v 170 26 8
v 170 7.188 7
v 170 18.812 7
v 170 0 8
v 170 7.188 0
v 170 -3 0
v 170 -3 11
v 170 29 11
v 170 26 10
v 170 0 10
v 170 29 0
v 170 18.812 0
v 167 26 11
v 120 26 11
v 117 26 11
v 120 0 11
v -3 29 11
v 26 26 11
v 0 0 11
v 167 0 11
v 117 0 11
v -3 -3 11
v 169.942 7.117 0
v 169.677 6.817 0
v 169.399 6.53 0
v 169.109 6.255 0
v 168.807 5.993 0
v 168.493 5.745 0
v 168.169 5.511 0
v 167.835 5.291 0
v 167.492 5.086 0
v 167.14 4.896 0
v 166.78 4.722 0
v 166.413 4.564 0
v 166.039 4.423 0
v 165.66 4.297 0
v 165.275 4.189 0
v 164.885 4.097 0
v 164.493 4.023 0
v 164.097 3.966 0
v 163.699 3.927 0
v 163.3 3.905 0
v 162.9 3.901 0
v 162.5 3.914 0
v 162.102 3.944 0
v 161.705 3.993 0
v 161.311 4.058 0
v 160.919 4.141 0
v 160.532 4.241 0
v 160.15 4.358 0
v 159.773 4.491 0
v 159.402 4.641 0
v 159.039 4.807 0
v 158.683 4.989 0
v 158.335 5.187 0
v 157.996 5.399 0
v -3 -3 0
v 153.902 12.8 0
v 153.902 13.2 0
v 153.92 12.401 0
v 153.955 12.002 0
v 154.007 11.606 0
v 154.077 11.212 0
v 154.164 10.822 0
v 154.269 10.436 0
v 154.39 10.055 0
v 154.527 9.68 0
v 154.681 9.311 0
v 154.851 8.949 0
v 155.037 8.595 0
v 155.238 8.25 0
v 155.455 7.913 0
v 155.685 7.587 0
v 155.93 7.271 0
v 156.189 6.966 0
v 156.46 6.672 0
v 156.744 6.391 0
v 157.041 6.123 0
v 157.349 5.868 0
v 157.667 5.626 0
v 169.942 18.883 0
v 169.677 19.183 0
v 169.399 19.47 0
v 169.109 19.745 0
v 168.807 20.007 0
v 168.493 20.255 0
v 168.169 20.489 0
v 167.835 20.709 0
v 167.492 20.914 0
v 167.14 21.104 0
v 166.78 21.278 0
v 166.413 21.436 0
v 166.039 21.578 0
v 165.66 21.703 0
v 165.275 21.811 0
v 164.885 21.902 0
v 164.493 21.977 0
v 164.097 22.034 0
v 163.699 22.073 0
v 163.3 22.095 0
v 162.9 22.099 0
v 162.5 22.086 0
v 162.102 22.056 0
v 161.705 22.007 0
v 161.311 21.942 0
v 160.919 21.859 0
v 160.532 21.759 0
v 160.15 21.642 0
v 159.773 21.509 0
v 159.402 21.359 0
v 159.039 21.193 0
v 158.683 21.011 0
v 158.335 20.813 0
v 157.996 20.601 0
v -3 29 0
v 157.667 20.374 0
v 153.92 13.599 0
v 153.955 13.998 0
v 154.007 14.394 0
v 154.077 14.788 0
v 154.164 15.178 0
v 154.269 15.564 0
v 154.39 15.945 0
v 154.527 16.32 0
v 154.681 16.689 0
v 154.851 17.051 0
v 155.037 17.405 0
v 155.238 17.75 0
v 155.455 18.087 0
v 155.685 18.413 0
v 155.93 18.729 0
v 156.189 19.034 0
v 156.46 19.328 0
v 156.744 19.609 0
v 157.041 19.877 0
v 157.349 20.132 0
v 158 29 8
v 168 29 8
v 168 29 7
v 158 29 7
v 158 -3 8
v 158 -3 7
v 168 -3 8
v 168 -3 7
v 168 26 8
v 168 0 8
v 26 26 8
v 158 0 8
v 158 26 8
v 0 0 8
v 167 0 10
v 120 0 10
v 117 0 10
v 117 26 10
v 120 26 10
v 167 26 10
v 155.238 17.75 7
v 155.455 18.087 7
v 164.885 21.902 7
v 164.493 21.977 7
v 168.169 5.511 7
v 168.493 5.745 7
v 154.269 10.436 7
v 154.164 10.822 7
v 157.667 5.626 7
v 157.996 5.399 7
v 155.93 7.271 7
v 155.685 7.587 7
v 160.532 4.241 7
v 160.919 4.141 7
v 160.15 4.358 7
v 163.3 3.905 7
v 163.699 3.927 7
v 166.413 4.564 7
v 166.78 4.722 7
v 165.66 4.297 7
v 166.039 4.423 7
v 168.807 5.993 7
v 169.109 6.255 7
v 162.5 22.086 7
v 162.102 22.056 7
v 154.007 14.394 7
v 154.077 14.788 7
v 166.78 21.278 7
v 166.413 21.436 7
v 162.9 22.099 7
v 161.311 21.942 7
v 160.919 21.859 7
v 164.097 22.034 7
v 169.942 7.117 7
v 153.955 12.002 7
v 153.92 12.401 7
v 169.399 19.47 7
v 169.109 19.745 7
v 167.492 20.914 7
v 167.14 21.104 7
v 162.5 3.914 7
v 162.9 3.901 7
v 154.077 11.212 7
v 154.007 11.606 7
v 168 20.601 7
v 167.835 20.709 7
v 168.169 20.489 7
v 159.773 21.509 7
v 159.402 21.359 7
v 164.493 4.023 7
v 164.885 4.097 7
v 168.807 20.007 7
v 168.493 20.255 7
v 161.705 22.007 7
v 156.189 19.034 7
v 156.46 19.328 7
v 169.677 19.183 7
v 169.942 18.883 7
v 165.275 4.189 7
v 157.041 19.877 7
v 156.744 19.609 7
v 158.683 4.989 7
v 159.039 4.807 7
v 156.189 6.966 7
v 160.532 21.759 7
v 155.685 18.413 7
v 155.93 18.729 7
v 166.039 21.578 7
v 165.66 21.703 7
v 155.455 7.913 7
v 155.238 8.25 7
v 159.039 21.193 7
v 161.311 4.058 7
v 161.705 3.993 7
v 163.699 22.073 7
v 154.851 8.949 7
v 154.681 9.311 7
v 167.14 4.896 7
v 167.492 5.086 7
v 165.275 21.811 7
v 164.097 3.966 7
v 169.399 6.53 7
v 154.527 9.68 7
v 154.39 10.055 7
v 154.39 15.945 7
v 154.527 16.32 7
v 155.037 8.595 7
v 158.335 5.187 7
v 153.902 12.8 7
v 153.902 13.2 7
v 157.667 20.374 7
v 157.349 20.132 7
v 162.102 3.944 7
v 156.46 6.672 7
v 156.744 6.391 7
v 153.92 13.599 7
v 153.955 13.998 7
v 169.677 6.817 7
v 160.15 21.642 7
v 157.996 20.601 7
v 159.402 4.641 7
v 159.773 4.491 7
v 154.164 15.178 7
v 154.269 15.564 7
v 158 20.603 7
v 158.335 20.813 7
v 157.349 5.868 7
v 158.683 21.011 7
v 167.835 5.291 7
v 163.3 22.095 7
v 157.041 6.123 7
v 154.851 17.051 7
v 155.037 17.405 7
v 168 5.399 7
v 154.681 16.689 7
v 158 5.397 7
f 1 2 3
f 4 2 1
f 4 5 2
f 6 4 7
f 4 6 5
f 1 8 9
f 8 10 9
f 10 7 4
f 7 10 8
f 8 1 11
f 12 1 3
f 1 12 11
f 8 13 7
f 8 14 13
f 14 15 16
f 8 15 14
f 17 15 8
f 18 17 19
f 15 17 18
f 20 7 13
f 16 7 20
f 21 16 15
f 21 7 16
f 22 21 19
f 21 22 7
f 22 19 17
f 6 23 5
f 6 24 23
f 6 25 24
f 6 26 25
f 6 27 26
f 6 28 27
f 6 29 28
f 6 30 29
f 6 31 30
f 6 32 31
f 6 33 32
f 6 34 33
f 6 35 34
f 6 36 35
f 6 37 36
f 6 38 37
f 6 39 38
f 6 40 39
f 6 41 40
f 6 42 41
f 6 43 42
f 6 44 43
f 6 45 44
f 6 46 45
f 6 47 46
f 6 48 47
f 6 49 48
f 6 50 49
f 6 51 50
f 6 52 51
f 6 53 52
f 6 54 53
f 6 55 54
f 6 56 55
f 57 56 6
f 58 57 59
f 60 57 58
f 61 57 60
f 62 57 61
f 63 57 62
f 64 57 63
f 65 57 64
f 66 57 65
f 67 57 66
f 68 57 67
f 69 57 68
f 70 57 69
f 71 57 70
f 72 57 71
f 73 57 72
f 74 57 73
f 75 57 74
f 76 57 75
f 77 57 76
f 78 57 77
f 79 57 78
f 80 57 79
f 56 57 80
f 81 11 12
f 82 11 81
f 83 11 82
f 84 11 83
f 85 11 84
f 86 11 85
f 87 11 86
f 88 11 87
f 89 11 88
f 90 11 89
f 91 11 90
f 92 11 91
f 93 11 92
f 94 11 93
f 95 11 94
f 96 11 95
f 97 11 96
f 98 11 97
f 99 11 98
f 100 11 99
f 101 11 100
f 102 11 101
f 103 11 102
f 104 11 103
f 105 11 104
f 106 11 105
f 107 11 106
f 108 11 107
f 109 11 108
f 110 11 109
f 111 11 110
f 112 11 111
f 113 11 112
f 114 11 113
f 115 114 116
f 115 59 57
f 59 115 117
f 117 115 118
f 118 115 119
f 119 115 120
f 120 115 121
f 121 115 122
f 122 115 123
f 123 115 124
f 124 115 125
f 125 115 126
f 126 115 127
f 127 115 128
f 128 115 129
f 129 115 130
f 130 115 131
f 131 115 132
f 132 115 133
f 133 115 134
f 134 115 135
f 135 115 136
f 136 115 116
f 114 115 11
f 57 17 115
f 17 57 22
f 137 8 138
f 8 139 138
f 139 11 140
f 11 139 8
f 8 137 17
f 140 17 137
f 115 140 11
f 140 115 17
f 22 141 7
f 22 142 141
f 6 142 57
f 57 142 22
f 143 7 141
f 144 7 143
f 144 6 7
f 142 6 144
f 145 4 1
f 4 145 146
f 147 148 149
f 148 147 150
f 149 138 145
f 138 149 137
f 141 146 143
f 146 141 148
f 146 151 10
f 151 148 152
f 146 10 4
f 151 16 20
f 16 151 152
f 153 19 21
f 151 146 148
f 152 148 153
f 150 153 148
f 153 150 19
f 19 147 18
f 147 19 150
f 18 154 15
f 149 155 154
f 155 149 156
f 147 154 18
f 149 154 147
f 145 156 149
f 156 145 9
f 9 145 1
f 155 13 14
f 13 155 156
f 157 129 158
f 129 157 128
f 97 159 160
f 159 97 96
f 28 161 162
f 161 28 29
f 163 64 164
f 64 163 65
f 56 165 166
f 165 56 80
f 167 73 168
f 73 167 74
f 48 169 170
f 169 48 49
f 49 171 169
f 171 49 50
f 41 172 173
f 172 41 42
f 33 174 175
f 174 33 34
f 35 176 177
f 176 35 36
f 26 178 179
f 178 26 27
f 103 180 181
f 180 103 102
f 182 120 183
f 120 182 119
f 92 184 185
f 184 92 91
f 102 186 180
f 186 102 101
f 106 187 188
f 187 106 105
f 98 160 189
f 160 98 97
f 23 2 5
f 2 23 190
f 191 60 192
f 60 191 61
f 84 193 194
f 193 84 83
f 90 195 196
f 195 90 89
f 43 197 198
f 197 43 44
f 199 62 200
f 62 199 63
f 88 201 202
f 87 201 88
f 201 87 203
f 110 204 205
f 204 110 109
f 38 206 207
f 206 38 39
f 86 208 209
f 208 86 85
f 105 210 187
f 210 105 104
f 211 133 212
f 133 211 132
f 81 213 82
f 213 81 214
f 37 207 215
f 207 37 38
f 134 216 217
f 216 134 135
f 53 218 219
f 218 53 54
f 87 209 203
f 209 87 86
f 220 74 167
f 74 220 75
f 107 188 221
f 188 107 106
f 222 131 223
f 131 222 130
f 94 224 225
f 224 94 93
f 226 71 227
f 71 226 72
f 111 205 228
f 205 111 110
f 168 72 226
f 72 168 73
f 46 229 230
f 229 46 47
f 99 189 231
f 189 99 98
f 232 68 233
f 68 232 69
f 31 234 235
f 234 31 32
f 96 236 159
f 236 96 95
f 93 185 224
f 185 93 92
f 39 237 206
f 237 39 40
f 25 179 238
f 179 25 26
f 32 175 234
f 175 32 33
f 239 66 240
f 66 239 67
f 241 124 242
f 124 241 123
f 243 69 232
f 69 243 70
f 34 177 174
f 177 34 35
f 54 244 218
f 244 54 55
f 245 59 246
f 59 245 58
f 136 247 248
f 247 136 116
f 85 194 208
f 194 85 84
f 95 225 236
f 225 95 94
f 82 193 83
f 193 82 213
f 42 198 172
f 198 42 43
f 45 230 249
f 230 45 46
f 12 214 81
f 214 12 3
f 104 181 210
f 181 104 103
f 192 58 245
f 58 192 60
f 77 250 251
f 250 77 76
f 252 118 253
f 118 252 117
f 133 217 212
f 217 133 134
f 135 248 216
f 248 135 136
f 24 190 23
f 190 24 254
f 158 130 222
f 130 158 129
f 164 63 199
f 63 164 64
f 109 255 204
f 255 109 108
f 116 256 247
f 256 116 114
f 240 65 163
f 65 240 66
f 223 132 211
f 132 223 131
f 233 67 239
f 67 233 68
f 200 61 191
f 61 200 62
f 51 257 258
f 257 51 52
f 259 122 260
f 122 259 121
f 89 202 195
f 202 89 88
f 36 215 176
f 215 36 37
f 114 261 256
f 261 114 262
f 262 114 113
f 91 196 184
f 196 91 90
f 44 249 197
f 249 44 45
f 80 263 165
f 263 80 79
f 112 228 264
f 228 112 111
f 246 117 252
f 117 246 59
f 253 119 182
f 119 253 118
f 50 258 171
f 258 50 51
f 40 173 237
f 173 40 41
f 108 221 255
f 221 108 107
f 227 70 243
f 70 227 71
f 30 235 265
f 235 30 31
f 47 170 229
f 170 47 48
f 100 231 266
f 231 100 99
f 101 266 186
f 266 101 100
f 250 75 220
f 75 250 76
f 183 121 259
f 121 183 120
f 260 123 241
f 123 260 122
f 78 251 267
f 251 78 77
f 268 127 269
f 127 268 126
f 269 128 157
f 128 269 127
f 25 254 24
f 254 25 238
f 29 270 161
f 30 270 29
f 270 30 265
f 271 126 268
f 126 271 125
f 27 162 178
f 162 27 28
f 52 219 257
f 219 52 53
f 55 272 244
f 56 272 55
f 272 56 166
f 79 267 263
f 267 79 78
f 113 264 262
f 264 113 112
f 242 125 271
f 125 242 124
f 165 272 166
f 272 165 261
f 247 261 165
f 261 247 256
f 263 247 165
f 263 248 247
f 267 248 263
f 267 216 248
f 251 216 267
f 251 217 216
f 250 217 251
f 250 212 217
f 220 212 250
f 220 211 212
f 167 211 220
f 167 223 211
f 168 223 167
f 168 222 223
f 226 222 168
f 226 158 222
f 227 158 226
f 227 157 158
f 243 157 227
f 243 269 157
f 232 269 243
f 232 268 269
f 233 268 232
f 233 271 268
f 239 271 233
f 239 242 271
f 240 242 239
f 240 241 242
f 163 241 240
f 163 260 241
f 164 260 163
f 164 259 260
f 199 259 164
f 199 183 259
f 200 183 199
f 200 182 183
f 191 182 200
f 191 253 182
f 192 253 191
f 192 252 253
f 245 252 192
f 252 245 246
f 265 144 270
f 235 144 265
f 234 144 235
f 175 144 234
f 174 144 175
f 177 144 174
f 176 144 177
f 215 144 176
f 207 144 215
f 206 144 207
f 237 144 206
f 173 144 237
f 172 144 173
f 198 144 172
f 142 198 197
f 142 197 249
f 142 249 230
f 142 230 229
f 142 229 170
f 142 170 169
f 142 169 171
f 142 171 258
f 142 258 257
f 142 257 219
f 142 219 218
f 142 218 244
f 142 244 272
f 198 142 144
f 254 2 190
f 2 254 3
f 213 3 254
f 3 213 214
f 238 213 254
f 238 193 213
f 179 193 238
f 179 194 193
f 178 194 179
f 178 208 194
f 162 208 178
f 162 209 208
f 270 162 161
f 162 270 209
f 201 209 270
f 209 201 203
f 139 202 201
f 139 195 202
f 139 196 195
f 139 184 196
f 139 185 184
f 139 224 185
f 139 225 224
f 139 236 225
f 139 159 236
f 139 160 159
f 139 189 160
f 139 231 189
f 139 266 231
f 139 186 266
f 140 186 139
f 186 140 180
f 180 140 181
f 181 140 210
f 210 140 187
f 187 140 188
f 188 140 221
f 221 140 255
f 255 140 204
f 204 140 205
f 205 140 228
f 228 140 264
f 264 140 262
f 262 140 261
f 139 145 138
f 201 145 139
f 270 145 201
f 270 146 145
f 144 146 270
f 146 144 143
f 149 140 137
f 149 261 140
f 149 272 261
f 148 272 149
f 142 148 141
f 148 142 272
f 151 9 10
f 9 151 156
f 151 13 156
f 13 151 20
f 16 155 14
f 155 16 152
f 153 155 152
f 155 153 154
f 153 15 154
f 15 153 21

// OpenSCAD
$fa = 1;
$fs = 0.4;

width = 26;
height = 170;
holeDiameter = 18.2;
thickness = 3;
metalStandThickness = 8;

difference () {
    // тело линейки
    color("green")
    translate([-thickness, -thickness, 0])
    cube([height + thickness, width + 2 * thickness, thickness + metalStandThickness]);
    
    // вырез под ленточку
    points = [
        [0, 0],
        [height, 0],
        [height, width],
        [width, width]
    ];

    // вырез под ленточку
    translate([0, 0, metalStandThickness])
    linear_extrude(height = thickness)
        polygon(points);
        
    // отверстие под наковальню
    translate([height - 7, width/2, 0])
    cylinder(metalStandThickness - 1, d = holeDiameter);

    // отверстие для подавателя бумаги
    feederWidth = 10;
    feederThickness = 1;
    color("red")
    // translate([height - (feederWidth/2) - 7, 0, feederThickness])

    translate([height - (feederWidth/2) - 7, -thickness, metalStandThickness - feederThickness])
        cube([feederWidth, width + 2*thickness, feederThickness]);

}

// прижималка 1
pressThickness = 3;
translate([height - pressThickness, 0, metalStandThickness + thickness - 1]) {
    cube([pressThickness, width, 1]);
}

// прижималка 2
color("red")
translate([height - pressThickness - 50, 0, metalStandThickness + thickness - 1]) {
    cube([pressThickness, width, 1]);
}
